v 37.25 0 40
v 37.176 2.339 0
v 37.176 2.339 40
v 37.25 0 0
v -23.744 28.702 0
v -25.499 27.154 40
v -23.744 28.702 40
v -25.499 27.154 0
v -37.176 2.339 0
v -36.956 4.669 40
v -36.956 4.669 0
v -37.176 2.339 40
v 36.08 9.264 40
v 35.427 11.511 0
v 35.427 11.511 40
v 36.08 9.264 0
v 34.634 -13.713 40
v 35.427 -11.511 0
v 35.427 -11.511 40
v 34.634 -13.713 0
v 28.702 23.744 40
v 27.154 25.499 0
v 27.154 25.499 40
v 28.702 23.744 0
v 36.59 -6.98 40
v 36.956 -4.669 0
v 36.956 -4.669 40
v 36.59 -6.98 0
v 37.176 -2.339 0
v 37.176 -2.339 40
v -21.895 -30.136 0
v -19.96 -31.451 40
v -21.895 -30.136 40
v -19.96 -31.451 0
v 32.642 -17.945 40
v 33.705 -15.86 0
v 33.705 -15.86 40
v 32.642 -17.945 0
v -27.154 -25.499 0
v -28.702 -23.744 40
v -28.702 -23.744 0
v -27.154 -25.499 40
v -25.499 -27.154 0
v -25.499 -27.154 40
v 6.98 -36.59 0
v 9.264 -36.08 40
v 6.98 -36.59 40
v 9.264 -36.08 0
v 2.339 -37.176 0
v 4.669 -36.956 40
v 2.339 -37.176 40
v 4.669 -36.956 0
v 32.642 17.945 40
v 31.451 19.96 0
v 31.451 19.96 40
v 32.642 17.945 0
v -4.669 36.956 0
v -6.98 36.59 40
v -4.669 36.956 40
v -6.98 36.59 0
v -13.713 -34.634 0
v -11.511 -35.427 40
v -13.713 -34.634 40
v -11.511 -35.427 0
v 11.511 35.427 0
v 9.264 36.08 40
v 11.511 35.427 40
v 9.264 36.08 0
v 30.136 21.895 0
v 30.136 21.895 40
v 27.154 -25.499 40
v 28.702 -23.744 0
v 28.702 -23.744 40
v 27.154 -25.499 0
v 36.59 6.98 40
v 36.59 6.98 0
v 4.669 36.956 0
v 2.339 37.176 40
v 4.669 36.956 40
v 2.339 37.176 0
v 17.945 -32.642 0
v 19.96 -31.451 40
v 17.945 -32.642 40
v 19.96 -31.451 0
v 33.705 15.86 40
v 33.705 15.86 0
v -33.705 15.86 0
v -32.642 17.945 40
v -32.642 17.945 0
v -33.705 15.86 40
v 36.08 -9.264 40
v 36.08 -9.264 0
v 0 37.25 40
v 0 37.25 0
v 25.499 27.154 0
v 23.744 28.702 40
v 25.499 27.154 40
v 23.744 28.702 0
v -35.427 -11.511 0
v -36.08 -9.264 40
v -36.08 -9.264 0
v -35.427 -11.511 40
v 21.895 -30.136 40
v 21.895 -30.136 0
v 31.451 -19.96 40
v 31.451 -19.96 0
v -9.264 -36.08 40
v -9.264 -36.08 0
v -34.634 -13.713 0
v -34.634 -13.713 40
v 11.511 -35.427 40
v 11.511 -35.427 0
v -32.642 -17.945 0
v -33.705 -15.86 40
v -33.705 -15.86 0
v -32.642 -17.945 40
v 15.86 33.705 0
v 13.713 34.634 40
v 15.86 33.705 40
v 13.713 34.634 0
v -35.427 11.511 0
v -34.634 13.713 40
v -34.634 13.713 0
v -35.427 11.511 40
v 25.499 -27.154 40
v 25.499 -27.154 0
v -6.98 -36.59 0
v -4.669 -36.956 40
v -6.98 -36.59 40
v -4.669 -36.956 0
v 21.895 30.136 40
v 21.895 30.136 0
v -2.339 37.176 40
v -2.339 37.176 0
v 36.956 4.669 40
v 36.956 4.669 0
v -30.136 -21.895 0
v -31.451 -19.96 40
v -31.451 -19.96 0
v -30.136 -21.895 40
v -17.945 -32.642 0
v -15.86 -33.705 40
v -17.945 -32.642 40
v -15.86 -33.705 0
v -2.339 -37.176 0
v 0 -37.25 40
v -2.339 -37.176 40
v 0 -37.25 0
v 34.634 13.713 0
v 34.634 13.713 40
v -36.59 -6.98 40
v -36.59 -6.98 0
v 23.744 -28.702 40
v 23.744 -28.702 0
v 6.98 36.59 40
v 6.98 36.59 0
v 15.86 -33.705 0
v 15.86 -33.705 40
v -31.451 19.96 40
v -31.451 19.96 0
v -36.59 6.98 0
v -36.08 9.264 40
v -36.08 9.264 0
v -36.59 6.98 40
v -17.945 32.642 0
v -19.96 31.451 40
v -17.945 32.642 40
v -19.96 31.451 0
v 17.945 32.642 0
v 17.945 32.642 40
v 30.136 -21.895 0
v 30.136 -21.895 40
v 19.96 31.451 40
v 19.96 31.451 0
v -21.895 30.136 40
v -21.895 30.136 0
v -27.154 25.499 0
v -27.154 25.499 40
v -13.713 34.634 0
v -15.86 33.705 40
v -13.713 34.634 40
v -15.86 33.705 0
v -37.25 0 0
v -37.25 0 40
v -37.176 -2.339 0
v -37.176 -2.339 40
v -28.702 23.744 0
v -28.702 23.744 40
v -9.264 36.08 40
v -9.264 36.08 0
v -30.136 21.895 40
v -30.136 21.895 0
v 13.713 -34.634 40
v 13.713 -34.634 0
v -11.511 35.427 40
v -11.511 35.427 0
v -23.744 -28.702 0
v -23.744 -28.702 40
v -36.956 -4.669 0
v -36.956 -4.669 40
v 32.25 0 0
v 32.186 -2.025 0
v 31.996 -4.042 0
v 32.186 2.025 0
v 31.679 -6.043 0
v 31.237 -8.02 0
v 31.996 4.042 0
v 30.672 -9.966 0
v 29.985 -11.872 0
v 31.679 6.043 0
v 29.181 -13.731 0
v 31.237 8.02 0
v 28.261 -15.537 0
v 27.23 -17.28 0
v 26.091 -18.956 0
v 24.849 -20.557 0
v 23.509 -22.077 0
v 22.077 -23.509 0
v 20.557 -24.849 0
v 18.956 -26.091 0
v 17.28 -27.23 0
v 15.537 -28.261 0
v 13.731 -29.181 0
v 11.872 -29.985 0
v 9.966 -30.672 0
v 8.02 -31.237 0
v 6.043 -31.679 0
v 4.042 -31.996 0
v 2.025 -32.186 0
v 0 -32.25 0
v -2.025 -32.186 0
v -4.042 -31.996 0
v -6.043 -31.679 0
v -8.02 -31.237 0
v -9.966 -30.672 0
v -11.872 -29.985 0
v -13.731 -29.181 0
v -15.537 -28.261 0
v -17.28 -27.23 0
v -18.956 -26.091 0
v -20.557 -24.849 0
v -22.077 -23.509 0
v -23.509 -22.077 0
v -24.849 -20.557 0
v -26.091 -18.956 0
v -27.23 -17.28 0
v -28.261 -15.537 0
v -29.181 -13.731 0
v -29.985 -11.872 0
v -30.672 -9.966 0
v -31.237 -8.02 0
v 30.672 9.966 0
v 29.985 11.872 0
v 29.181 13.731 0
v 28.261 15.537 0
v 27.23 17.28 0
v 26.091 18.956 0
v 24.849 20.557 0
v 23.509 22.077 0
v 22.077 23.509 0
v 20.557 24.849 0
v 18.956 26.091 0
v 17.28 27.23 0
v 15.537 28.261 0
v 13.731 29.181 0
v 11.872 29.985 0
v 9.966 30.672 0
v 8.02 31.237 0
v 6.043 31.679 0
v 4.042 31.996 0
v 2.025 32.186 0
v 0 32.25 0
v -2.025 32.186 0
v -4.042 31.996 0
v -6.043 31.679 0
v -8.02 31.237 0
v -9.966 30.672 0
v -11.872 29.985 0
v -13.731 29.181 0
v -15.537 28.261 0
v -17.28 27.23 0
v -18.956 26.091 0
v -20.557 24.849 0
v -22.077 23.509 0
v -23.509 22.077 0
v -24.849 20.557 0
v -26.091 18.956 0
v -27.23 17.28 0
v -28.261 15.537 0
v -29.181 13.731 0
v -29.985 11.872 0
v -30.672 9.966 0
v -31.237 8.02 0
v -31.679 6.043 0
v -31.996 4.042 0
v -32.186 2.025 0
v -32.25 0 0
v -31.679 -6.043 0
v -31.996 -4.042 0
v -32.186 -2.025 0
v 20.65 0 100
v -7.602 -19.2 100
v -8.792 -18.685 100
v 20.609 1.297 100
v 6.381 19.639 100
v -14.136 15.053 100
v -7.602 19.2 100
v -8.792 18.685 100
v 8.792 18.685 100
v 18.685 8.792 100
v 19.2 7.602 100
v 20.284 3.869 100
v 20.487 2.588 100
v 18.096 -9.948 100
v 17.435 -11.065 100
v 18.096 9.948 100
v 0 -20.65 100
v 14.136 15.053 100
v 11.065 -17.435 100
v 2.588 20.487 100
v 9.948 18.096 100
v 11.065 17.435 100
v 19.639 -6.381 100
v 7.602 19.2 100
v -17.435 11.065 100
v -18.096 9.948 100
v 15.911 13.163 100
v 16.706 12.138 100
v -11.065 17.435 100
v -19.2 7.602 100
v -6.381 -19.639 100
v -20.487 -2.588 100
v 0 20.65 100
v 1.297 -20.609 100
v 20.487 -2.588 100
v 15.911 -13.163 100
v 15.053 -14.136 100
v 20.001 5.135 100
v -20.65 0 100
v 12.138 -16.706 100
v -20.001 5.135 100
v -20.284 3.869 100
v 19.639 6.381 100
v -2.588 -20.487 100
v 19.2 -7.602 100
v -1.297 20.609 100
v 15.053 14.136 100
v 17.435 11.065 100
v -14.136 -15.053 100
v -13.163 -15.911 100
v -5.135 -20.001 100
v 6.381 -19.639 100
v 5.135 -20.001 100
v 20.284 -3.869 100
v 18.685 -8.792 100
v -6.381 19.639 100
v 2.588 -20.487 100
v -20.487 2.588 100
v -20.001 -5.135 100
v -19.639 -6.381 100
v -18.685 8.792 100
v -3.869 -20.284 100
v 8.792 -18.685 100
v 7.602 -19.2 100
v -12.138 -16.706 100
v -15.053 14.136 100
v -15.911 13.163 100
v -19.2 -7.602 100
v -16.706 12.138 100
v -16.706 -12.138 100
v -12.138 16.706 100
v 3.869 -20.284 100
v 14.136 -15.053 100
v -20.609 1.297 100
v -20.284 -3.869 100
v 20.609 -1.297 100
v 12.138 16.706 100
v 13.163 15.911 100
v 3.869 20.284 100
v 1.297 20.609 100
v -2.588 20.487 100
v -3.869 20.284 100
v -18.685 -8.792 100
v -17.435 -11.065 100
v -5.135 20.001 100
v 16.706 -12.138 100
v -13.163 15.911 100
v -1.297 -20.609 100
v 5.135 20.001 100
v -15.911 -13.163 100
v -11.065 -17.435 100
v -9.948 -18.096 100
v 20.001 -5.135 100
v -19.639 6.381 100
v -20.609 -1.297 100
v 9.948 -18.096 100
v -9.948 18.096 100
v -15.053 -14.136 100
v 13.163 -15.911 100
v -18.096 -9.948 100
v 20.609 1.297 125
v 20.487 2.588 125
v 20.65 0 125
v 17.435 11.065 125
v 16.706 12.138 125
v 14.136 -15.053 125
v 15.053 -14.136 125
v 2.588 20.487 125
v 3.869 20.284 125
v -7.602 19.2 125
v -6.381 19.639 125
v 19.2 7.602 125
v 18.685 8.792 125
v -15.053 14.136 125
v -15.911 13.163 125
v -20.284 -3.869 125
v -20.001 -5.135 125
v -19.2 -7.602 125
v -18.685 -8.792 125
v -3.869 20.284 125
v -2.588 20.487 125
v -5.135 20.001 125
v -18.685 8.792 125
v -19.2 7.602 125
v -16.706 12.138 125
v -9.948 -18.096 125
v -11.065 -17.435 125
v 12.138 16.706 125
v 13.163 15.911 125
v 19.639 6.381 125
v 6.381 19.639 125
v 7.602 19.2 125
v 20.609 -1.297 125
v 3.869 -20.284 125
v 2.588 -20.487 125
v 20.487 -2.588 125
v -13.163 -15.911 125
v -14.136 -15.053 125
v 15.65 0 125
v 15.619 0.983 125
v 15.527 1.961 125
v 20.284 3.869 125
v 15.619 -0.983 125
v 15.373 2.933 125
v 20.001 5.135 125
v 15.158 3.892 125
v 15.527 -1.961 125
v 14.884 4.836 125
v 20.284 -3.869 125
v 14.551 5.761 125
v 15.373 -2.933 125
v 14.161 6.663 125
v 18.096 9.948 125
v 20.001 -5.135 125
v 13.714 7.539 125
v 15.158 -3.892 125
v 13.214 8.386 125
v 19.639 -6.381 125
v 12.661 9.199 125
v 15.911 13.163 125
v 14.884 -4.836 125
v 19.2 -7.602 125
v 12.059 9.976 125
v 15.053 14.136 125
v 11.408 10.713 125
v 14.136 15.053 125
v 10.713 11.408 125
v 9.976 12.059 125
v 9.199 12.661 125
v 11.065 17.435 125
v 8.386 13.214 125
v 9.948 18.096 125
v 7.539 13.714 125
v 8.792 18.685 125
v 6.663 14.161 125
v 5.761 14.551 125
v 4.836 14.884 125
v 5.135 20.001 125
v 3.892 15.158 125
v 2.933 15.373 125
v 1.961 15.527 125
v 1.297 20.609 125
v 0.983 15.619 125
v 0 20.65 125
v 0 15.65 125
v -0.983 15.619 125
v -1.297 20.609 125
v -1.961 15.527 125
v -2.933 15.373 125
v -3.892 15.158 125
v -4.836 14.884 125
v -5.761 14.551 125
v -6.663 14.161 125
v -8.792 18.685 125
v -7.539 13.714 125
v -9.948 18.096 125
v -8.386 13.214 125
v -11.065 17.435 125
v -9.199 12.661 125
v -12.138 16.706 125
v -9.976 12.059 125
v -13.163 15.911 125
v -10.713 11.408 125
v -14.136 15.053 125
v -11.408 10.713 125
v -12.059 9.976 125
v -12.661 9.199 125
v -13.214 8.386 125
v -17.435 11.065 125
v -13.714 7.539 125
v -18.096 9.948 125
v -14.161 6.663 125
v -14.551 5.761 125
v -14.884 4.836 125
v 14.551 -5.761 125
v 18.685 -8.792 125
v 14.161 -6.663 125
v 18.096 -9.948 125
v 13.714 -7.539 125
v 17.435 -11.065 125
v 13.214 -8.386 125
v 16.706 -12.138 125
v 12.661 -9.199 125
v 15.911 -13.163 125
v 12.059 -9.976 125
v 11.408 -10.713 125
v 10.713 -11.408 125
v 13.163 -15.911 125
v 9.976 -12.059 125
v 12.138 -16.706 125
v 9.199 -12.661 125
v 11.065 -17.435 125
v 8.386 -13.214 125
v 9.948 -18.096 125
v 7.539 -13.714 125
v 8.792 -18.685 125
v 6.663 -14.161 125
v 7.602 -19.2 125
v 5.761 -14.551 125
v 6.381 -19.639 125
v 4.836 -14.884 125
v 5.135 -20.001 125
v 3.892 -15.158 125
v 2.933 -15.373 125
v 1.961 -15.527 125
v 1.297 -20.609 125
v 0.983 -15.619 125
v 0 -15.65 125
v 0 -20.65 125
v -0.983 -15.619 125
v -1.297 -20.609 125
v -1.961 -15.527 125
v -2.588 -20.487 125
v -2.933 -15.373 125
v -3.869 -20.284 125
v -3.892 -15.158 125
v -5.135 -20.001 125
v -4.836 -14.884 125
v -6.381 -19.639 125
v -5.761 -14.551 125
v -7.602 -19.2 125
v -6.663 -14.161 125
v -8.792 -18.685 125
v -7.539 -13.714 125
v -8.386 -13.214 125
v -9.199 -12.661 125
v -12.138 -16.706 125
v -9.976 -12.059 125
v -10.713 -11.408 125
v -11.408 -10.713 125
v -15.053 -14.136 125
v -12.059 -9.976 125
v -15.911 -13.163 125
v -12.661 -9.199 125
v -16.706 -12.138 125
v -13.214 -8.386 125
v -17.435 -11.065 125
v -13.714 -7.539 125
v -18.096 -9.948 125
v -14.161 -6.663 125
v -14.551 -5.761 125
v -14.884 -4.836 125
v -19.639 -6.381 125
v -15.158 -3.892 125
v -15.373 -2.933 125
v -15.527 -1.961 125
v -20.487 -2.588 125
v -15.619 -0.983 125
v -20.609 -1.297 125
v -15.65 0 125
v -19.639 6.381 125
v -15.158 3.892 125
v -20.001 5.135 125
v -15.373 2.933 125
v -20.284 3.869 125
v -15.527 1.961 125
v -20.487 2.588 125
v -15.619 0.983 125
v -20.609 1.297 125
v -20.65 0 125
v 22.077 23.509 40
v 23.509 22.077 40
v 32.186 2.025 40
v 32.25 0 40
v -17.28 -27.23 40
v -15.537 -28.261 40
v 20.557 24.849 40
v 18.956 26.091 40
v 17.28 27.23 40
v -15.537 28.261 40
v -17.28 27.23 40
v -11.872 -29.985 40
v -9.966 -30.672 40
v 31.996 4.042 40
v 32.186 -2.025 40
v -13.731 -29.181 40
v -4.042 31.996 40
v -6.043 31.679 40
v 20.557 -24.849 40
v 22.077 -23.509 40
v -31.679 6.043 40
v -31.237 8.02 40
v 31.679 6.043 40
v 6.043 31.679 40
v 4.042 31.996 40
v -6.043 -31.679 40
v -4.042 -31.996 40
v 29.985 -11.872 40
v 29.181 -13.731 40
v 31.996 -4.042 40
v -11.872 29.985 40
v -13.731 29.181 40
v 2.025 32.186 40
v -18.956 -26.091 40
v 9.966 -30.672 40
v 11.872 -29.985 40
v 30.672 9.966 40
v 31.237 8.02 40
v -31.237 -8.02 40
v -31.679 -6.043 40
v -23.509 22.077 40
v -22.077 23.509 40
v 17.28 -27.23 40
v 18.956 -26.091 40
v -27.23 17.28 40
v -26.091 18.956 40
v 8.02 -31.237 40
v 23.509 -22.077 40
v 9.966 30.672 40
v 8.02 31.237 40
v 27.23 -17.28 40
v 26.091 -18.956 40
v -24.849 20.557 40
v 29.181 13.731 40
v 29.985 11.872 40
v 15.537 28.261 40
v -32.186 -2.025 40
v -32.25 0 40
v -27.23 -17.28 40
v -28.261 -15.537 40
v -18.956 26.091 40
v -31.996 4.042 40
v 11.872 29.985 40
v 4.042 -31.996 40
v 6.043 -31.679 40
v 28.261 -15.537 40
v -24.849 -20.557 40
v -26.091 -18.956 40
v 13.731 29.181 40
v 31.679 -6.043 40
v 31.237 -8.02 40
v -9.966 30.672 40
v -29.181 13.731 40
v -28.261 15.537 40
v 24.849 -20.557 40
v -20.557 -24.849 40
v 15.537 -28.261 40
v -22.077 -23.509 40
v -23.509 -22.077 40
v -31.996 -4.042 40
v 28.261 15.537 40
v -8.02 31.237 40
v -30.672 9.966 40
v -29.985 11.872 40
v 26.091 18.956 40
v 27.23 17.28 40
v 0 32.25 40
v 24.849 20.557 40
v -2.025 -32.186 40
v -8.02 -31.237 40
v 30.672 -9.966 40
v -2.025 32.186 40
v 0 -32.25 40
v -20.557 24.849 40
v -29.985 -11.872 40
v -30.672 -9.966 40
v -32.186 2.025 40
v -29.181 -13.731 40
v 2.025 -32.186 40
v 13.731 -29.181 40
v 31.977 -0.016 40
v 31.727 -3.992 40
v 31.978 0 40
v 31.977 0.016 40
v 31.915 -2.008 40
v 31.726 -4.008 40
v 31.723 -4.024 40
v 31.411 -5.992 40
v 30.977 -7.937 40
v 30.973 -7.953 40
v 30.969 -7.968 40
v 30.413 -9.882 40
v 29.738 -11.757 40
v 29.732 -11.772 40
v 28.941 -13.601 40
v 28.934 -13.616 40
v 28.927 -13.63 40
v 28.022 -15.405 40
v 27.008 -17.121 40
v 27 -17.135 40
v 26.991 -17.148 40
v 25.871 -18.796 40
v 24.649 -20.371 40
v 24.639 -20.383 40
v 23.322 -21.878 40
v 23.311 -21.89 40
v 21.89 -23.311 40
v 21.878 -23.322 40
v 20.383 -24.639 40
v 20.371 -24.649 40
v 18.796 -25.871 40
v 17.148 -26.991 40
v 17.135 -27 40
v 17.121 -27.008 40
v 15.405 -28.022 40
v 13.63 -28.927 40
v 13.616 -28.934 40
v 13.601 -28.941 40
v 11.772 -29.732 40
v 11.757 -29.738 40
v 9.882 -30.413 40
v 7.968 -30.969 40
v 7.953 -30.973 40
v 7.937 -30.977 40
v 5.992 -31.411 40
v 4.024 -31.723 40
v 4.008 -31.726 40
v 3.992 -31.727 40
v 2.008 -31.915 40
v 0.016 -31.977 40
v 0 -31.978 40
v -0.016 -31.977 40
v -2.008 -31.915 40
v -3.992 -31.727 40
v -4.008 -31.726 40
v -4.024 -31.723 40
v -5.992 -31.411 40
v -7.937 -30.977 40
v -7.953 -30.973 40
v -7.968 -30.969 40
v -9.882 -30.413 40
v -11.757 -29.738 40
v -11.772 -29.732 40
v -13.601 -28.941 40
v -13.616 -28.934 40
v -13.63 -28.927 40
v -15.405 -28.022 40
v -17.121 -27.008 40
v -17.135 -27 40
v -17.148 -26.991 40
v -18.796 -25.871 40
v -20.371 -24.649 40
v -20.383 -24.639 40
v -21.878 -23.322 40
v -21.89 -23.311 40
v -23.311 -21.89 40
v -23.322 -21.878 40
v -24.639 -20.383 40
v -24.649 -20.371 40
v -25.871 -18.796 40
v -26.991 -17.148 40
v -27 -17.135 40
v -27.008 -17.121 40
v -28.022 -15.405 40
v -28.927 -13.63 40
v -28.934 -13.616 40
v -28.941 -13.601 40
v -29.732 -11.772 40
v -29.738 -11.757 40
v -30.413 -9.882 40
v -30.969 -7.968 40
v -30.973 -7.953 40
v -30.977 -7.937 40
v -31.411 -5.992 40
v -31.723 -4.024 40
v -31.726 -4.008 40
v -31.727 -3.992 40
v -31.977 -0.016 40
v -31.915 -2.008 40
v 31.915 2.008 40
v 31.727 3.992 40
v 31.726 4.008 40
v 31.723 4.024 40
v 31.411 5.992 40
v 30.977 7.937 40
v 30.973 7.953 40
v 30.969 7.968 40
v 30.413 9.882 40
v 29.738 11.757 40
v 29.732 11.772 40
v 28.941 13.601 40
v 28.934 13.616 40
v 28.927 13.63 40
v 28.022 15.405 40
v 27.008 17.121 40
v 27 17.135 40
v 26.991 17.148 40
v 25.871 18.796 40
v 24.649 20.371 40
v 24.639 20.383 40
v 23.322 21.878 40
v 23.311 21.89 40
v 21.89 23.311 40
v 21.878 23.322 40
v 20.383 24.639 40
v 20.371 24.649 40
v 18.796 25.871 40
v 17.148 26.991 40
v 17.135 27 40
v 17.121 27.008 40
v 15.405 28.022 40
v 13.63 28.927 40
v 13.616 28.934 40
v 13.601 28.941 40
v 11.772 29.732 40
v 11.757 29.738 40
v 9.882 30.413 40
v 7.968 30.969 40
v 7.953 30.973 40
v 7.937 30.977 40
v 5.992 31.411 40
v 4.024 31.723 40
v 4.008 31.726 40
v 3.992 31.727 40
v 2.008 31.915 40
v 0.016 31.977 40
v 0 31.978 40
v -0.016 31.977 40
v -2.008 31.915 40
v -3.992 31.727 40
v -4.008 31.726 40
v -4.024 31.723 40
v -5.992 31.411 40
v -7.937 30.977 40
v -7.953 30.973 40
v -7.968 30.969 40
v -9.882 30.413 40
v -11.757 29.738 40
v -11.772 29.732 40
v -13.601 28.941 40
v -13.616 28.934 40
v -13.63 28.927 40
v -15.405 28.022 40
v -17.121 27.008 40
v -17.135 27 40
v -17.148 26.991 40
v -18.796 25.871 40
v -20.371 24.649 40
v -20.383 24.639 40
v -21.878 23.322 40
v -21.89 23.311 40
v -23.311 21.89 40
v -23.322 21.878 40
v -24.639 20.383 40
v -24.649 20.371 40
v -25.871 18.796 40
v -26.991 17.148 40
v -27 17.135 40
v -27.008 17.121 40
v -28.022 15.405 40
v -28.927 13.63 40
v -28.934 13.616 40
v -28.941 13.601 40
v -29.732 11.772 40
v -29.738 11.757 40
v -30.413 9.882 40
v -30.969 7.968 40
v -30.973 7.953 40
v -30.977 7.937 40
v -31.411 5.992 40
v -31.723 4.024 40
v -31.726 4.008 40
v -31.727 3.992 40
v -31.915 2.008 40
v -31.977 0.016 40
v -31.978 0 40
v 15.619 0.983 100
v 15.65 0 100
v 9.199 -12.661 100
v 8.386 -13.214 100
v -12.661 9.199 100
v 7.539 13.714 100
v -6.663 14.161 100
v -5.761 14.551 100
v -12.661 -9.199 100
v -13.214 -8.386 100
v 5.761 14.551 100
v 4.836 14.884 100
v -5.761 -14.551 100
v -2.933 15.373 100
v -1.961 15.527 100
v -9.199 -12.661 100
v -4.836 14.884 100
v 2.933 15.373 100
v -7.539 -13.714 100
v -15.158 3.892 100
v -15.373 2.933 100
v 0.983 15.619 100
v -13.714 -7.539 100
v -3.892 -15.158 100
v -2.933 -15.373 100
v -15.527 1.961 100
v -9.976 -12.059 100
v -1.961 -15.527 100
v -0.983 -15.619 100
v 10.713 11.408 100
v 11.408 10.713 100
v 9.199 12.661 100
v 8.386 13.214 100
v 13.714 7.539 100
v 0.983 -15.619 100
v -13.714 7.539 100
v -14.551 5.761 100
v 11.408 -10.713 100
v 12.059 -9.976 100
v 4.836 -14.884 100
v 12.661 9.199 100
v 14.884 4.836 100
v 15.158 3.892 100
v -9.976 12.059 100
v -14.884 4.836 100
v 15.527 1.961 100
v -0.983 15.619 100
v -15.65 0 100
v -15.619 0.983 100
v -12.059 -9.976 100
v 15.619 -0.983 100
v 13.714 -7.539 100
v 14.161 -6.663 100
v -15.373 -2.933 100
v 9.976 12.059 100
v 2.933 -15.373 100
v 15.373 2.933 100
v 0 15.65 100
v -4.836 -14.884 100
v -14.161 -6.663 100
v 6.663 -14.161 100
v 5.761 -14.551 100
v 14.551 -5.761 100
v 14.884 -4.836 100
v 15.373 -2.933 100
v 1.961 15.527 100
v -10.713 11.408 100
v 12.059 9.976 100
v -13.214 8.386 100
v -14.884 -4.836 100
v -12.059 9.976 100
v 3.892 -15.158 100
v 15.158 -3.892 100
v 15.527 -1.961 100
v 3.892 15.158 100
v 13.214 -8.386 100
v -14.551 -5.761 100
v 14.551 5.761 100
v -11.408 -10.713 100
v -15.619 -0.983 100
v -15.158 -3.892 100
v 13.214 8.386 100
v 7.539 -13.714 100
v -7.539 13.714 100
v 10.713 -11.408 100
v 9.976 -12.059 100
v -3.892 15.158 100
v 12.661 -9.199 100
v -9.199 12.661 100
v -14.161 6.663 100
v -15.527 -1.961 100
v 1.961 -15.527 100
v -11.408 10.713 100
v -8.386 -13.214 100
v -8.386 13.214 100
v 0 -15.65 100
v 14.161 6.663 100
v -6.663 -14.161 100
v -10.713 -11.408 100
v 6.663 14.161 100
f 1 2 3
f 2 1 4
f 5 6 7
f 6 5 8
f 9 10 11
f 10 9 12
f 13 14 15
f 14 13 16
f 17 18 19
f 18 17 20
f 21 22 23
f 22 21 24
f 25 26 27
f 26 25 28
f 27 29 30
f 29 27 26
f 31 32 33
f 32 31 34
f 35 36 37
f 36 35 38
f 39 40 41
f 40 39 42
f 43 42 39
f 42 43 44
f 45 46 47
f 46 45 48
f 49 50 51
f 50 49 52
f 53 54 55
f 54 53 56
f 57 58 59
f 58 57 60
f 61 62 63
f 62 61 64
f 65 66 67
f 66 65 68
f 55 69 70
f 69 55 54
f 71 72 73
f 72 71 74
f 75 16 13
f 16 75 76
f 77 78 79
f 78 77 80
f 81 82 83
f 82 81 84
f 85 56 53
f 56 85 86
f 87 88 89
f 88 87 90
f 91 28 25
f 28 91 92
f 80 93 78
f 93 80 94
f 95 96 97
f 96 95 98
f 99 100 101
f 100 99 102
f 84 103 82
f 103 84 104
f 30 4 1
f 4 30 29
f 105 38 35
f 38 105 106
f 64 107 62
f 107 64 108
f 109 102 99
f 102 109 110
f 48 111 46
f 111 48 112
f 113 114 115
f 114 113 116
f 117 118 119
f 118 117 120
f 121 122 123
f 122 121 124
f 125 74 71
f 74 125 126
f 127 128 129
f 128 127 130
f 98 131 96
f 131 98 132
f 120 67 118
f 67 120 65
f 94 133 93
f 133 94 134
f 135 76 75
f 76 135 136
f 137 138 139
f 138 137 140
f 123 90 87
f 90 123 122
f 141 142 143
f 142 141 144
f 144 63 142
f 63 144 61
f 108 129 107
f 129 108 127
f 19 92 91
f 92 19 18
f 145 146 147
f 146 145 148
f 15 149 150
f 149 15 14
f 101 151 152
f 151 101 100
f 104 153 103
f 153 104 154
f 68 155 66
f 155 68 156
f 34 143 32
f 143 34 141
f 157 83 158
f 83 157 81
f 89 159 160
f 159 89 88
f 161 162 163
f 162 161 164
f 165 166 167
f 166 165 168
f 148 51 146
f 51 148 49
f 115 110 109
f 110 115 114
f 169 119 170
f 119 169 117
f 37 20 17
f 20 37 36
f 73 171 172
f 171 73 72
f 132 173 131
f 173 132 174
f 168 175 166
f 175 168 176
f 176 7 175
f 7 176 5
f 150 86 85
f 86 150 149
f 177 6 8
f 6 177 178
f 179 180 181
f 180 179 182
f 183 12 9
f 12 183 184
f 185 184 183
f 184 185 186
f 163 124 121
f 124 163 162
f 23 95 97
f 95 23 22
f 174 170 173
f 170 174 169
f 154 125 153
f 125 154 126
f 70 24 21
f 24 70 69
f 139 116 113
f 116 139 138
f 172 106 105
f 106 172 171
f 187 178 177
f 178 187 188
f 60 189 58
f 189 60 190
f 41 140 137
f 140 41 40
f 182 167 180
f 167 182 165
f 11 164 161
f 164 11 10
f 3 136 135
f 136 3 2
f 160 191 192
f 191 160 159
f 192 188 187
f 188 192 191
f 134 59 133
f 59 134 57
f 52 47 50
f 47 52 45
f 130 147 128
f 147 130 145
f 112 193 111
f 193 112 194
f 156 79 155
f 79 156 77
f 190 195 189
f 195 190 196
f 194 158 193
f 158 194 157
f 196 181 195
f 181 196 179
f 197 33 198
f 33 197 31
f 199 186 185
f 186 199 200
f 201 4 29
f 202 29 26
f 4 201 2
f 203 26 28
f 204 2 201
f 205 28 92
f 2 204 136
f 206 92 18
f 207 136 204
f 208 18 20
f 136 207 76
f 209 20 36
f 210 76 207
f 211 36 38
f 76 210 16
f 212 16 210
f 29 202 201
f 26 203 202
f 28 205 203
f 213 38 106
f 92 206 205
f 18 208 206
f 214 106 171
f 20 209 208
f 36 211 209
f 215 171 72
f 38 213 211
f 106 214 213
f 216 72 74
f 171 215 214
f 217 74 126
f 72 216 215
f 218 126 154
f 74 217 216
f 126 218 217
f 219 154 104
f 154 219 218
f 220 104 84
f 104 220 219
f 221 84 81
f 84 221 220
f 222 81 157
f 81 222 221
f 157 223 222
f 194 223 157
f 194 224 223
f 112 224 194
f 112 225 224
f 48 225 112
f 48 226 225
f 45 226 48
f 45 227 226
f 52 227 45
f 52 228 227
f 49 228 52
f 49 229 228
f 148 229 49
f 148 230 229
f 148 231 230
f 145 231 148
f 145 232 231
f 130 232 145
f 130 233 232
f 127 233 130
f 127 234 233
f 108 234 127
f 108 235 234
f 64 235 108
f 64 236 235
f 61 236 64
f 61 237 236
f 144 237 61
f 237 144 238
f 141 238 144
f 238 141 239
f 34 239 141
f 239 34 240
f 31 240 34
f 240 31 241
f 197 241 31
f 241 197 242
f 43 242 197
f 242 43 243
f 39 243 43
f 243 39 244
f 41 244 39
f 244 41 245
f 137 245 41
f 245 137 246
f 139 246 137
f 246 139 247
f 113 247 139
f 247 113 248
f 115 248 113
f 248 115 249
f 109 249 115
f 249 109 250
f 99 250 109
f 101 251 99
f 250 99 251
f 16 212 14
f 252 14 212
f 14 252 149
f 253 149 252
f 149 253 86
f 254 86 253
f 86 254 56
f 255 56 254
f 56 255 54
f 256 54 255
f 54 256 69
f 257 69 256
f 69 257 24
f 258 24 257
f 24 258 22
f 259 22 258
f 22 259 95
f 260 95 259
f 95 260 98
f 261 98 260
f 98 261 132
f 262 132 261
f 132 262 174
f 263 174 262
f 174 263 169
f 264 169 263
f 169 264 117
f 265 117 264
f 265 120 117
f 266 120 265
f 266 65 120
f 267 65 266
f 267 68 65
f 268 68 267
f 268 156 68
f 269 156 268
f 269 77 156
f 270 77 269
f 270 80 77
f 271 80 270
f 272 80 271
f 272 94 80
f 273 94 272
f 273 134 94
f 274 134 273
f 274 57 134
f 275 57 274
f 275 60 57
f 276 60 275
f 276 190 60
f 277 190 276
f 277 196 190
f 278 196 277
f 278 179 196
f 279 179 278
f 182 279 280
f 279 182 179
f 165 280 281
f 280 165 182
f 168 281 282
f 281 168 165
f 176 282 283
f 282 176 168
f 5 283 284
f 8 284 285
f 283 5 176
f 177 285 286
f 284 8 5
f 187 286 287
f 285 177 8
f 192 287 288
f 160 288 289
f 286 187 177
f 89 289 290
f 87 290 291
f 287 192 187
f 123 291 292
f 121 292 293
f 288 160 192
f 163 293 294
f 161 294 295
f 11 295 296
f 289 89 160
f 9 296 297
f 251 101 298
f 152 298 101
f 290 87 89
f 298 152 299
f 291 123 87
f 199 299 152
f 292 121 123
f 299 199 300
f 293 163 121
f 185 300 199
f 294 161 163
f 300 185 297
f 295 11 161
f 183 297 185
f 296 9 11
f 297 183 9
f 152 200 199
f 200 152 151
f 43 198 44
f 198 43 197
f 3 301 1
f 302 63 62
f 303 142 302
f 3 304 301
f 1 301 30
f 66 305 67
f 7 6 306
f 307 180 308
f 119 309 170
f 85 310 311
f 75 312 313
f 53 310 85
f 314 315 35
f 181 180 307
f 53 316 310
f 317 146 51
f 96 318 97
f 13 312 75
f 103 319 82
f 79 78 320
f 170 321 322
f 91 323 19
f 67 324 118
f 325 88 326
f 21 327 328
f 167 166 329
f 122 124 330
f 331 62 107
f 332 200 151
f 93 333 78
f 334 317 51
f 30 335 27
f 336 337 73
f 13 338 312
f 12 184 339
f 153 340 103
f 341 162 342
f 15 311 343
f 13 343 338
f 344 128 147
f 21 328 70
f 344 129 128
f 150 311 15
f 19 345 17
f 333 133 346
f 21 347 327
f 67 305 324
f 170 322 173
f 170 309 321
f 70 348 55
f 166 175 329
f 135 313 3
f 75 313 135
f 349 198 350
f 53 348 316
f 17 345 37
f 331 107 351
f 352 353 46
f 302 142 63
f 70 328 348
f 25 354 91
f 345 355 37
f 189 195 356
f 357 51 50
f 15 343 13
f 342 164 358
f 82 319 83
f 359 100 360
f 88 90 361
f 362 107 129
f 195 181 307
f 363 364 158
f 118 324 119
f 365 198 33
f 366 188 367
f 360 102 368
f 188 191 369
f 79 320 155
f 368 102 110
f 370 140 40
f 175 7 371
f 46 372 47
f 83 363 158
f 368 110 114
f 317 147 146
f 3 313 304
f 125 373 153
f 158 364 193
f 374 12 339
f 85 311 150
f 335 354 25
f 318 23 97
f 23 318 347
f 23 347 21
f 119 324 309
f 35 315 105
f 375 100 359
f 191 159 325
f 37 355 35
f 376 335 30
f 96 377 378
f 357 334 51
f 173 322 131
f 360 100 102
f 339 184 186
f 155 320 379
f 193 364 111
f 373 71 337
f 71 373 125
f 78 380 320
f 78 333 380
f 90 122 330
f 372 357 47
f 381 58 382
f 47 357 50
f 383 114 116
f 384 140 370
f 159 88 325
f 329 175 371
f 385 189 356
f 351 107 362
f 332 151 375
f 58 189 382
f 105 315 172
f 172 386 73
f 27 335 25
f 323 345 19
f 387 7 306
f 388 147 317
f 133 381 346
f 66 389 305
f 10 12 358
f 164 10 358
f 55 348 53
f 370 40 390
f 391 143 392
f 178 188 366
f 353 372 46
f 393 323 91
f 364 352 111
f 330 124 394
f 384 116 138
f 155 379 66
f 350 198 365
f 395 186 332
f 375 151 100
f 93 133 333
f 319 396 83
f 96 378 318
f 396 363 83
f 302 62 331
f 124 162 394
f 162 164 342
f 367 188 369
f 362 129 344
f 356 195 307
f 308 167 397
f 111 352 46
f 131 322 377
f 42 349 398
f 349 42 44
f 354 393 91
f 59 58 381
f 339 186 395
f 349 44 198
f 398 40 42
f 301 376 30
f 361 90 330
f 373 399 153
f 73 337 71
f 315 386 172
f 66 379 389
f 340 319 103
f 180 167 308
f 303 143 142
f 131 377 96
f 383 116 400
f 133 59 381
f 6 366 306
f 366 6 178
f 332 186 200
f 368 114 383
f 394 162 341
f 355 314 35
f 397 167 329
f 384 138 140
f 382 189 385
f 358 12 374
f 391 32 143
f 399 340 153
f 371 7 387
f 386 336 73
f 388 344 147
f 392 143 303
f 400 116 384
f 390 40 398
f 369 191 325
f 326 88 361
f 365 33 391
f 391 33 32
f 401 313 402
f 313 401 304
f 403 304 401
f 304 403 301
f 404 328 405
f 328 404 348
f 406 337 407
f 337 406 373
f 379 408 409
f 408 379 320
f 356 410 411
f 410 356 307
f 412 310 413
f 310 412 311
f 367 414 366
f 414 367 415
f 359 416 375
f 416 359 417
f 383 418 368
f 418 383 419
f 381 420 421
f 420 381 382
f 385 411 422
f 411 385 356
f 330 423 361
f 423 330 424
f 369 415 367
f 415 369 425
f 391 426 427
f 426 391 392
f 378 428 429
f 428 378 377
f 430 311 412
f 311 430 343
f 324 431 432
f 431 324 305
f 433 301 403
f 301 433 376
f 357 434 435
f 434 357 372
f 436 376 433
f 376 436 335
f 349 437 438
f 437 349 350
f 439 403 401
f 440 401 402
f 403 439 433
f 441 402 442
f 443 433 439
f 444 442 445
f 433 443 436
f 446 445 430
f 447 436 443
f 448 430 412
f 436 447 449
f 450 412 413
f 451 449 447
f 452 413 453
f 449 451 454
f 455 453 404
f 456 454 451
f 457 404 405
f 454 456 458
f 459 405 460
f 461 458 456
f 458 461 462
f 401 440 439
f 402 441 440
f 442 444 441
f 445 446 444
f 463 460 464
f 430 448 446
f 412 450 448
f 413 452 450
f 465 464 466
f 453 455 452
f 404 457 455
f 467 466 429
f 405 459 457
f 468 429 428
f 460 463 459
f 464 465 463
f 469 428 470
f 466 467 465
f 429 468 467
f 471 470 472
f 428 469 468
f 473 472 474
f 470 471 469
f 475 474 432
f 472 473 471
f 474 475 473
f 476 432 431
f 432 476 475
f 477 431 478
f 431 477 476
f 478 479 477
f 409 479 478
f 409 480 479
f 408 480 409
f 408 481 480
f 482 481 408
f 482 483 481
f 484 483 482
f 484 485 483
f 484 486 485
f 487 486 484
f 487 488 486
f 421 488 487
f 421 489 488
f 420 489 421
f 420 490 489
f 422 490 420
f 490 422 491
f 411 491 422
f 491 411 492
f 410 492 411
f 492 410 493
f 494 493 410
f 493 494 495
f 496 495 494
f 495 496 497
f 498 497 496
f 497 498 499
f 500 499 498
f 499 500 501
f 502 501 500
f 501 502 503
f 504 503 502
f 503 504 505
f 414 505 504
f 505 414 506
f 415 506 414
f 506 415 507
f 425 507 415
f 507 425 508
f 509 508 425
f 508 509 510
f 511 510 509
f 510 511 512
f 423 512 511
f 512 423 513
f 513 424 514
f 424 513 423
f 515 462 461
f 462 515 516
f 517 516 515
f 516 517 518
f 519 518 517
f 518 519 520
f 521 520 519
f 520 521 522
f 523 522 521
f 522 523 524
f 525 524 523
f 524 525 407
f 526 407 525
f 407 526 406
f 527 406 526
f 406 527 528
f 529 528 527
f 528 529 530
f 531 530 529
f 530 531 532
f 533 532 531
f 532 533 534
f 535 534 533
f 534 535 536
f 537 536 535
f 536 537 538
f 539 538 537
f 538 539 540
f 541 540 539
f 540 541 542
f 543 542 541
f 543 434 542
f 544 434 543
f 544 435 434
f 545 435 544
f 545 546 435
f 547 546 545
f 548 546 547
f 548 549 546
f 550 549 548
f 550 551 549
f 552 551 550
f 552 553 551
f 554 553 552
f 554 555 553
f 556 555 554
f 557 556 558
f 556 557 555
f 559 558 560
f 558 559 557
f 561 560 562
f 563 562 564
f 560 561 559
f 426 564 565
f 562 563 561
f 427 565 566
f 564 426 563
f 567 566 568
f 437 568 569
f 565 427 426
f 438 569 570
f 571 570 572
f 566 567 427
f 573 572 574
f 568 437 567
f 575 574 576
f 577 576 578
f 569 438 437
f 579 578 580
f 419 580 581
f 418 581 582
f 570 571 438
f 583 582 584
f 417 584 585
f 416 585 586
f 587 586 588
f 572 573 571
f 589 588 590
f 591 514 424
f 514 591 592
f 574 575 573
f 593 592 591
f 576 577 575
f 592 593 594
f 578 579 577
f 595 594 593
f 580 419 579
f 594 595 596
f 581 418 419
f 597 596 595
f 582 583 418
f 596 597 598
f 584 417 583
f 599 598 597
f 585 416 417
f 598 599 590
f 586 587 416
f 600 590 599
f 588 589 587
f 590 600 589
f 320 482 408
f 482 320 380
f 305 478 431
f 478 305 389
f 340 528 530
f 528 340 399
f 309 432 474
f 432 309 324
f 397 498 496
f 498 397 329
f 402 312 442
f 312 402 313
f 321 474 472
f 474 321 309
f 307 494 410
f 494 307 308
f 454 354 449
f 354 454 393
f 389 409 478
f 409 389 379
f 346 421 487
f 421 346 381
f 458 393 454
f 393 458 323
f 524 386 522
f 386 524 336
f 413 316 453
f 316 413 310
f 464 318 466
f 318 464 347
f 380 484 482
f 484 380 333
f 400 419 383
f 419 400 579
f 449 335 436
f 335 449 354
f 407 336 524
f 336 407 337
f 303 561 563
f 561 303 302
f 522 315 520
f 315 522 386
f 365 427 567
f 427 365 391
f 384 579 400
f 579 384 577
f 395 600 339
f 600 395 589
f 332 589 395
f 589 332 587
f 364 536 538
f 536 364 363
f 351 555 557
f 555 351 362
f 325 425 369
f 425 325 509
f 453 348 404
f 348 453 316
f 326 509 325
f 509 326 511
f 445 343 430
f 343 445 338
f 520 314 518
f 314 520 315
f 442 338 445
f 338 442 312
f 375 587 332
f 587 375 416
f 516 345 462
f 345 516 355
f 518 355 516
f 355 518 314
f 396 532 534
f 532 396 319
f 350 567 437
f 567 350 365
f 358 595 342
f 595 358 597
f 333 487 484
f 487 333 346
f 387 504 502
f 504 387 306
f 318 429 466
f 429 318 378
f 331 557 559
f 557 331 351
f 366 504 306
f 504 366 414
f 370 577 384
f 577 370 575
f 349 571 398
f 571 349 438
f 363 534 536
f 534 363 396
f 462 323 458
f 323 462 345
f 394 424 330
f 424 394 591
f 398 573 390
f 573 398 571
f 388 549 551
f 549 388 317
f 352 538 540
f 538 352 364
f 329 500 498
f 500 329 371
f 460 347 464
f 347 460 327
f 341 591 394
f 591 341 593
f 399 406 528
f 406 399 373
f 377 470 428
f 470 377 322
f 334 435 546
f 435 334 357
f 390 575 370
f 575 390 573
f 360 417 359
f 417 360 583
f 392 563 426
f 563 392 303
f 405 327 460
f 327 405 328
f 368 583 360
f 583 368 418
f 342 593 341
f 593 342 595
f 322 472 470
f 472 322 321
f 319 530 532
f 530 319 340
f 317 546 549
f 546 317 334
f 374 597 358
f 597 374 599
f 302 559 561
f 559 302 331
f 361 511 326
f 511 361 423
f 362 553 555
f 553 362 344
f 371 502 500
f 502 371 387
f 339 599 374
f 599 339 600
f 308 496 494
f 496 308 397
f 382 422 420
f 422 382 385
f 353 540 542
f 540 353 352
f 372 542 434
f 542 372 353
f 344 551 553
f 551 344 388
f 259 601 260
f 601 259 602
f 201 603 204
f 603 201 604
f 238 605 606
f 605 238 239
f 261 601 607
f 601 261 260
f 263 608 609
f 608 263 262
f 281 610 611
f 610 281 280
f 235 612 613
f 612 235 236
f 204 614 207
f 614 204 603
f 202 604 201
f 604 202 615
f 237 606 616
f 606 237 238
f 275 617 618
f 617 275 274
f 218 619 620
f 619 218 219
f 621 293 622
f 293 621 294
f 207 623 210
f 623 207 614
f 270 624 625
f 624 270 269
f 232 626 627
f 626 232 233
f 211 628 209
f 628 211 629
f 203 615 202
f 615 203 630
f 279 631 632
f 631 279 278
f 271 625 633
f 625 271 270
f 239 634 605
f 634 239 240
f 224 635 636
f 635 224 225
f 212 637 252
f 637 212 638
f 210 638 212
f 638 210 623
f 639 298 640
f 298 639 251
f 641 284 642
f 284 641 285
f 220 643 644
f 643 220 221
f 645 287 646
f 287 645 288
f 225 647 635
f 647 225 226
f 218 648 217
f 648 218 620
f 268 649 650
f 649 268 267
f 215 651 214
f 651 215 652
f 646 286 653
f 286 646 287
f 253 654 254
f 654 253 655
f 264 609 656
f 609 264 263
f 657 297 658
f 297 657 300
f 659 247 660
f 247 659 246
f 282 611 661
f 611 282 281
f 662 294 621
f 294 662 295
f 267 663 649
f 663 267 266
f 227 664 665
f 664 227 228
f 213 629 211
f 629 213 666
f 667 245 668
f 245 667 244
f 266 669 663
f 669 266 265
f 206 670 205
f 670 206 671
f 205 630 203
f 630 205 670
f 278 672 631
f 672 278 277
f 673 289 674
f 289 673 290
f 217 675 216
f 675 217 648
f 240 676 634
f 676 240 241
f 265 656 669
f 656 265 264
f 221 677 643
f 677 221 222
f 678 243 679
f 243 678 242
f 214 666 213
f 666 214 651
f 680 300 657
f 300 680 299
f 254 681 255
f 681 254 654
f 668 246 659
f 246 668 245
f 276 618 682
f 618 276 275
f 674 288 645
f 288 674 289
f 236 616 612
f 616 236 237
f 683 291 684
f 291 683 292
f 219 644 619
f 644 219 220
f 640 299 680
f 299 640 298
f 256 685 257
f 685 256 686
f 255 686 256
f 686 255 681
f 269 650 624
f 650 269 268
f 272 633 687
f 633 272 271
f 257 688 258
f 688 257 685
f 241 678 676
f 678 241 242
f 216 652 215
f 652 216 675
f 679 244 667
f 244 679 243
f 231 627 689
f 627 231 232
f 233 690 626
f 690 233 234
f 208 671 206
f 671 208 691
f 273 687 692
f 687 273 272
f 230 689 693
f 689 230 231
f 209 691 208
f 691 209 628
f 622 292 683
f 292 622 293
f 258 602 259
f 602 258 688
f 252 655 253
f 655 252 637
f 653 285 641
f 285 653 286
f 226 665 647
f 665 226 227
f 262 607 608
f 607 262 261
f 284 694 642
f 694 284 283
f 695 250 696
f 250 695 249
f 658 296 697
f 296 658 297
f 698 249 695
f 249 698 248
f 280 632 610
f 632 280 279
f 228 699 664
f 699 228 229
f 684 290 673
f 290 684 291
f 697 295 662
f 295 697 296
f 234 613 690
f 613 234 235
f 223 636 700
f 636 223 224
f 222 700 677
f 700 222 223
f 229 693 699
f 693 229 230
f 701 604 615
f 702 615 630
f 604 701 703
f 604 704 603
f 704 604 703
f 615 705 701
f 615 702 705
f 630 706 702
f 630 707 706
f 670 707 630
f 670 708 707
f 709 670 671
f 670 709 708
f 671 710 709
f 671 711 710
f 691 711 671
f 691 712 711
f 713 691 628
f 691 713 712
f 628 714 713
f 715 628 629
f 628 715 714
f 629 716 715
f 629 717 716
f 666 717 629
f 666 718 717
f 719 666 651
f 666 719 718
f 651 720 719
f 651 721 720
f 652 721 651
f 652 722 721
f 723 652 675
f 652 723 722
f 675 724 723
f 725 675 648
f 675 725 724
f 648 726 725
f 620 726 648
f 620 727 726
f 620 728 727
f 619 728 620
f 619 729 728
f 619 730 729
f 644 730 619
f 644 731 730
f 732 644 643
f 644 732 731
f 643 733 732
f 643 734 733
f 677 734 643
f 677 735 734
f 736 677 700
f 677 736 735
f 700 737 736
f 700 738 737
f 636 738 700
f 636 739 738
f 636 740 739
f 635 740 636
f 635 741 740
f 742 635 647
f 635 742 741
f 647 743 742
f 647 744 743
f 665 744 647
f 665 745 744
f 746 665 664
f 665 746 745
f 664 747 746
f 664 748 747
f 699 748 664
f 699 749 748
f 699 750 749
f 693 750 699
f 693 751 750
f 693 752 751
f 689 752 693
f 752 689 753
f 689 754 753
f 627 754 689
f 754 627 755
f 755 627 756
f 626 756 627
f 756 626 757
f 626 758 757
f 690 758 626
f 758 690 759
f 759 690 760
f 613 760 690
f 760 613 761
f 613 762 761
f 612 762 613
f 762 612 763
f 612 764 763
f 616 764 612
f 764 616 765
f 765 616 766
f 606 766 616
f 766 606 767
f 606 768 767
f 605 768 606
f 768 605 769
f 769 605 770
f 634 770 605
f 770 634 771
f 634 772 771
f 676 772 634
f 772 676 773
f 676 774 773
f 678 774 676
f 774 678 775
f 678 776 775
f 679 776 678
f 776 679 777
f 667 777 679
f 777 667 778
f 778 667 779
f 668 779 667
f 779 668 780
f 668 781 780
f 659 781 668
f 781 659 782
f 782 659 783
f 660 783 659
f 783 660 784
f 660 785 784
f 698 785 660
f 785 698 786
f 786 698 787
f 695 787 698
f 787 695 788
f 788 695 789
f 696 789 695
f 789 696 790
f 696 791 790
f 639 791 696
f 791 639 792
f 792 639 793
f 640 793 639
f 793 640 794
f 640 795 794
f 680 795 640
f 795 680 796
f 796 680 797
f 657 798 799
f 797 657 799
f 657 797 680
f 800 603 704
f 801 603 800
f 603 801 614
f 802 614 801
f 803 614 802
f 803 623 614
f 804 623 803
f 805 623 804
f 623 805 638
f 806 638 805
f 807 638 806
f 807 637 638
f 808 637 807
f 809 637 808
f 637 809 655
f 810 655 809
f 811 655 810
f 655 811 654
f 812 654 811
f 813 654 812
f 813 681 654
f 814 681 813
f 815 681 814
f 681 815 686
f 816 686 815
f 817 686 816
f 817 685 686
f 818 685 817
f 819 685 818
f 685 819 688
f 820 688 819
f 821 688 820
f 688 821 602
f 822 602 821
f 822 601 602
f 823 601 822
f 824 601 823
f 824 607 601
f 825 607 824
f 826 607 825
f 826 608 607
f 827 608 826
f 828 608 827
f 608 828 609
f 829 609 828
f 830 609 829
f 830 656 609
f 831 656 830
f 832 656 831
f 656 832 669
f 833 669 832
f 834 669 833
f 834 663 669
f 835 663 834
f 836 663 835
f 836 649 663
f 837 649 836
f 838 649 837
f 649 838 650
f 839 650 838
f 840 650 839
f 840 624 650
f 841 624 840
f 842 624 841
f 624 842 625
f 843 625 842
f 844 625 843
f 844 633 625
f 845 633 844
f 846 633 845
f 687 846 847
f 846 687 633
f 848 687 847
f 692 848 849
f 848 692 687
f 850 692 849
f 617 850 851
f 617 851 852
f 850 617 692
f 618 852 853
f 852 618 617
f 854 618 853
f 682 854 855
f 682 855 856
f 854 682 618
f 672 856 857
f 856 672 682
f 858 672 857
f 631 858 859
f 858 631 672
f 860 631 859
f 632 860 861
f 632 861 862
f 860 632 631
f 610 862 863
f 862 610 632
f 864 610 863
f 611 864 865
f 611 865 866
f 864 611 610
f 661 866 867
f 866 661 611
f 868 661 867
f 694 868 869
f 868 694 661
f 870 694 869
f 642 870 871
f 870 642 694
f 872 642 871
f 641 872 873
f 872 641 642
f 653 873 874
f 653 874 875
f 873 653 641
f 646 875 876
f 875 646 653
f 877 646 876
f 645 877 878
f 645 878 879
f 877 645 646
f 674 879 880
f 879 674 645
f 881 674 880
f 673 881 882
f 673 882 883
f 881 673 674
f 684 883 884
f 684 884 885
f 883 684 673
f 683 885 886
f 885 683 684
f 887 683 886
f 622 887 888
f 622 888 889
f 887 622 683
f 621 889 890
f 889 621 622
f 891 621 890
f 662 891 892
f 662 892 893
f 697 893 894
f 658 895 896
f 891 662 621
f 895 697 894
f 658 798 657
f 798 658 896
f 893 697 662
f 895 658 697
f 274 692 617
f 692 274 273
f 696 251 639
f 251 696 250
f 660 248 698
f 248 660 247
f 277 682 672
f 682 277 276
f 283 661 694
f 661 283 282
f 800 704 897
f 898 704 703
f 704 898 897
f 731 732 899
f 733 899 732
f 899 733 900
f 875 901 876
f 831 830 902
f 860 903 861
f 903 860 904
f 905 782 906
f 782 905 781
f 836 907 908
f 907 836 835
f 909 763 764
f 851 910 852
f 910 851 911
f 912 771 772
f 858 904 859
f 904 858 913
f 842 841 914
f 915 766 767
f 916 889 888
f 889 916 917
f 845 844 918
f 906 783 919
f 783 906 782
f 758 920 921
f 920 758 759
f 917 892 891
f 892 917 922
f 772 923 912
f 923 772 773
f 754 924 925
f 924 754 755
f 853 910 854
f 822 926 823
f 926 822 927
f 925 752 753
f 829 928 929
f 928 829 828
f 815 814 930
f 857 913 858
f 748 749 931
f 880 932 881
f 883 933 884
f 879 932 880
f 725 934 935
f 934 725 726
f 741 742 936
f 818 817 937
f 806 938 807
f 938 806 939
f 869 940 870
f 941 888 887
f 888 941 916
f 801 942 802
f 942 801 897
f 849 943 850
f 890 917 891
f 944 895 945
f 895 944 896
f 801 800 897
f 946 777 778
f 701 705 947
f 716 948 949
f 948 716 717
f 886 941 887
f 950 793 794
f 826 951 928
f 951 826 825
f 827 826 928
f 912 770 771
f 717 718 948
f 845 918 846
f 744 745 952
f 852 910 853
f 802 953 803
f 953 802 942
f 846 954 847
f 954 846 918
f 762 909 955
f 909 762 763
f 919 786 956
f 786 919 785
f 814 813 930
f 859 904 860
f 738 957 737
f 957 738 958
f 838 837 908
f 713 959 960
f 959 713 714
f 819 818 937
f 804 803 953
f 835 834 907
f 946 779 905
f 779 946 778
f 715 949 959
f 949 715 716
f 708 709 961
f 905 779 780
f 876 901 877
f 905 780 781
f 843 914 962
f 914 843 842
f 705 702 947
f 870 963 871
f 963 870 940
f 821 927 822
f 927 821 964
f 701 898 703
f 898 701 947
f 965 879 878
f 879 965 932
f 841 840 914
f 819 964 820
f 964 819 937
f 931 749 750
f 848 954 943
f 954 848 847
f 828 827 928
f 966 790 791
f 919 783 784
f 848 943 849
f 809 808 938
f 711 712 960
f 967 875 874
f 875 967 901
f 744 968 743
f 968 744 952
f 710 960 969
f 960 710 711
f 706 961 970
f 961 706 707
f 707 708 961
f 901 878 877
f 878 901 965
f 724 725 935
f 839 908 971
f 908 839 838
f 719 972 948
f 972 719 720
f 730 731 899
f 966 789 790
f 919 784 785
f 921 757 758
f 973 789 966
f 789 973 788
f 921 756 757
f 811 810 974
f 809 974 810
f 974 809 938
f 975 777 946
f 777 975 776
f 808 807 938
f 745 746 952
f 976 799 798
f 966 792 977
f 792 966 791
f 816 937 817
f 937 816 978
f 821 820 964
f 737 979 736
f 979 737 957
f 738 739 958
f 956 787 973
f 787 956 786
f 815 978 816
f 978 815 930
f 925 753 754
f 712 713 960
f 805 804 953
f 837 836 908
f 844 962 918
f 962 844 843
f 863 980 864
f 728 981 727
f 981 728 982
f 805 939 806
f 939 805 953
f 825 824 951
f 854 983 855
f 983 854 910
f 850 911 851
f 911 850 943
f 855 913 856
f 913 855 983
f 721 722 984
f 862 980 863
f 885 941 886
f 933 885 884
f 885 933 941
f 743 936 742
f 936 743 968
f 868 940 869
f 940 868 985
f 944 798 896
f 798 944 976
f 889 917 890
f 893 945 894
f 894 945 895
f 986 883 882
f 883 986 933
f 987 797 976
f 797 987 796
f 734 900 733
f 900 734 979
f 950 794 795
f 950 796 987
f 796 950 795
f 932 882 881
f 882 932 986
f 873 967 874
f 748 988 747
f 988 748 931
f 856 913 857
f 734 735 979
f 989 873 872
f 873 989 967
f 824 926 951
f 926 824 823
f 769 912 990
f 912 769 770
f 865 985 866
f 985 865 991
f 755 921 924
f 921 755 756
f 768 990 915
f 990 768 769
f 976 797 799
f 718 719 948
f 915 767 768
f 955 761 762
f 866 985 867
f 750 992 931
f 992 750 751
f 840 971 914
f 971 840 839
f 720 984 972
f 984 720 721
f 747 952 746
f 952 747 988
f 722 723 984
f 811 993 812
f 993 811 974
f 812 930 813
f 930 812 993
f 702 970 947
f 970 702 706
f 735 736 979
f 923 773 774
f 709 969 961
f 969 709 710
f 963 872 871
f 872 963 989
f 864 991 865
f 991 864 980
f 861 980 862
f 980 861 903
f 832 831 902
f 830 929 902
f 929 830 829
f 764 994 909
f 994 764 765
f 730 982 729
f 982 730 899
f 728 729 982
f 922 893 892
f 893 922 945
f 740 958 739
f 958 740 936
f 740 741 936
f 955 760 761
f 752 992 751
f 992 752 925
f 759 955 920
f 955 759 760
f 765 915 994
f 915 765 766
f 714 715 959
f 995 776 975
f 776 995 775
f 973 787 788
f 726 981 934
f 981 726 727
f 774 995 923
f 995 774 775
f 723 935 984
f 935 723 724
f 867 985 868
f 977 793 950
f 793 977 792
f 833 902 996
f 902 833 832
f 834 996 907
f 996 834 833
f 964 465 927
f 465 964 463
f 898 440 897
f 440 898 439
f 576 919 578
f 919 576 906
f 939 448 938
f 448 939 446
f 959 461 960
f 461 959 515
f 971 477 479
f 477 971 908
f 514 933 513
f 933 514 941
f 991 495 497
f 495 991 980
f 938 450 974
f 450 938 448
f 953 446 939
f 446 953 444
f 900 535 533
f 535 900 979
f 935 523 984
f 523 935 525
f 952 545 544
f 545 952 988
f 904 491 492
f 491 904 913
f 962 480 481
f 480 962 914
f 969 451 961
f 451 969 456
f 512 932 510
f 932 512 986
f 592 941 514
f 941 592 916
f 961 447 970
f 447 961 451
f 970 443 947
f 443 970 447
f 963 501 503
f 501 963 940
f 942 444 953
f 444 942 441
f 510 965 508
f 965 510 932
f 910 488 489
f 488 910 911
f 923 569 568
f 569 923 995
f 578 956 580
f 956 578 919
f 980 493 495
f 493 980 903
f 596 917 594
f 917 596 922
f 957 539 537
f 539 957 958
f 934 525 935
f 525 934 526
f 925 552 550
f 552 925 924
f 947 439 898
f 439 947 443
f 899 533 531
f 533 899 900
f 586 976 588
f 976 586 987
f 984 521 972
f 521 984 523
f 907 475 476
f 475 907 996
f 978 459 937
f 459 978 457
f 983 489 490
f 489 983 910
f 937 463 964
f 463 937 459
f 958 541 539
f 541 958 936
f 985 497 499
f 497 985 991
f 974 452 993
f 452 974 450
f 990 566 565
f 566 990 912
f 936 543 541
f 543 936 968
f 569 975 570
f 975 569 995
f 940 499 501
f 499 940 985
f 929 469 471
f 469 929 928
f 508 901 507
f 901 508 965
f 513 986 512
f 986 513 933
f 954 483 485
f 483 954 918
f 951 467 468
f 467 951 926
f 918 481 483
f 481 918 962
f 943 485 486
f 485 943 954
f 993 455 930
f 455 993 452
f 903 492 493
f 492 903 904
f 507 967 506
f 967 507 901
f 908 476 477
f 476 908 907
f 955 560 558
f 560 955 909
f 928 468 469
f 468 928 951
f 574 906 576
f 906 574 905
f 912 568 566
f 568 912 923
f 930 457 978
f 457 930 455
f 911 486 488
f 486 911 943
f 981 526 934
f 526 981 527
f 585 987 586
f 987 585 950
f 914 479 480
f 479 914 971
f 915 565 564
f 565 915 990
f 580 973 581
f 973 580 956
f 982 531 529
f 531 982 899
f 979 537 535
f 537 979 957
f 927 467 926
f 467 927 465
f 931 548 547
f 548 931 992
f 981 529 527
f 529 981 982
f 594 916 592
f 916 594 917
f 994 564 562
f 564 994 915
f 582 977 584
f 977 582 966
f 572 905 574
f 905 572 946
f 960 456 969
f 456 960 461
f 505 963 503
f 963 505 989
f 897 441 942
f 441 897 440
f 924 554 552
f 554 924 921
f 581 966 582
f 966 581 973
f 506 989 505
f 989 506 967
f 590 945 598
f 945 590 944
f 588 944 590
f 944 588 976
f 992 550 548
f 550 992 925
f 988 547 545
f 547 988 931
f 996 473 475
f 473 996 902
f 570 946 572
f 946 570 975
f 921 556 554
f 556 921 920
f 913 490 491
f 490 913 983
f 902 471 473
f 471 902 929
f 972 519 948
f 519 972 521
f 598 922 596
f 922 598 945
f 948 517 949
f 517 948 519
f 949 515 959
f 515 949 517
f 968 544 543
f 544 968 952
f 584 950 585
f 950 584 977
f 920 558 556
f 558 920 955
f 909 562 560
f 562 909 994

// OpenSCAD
// Dewalt Table Saw dust

saw_od = 64.5;
h1 = 40.0;
middle_h = 60.0;
vacuum_od = 31.3;
h2 = 25.0;
thickness = 5.0;
extra_h = 1.0;

$fn = 100;
difference(){
    union() {
        // main
        cylinder(h = h1, r = saw_od / 2.0 + thickness, center = false);
        translate([0, 0, h1]) {
            cylinder(h = middle_h, r1 = saw_od / 2.0 + thickness, r2 = vacuum_od / 2.0 + thickness, center = false);
        }
        translate([0, 0, h1 + middle_h]) {
            cylinder(h = h2, r = vacuum_od / 2.0 + thickness, center = false);
        }
    }
    // saw hole
    translate([0, 0, -extra_h]) {
        cylinder(h = h1 + extra_h, r = saw_od / 2.0, center = false);
    }
    translate([0, 0, h1 - extra_h]) {
        cylinder(h = middle_h + extra_h, r1 = saw_od / 2.0, r2 = vacuum_od / 2.0, center = false);
    }
    translate([0, 0, h1 + middle_h - extra_h]) {
        cylinder(h = h2 + 2.0 * extra_h, r = vacuum_od / 2.0, center = false);
    }
}
